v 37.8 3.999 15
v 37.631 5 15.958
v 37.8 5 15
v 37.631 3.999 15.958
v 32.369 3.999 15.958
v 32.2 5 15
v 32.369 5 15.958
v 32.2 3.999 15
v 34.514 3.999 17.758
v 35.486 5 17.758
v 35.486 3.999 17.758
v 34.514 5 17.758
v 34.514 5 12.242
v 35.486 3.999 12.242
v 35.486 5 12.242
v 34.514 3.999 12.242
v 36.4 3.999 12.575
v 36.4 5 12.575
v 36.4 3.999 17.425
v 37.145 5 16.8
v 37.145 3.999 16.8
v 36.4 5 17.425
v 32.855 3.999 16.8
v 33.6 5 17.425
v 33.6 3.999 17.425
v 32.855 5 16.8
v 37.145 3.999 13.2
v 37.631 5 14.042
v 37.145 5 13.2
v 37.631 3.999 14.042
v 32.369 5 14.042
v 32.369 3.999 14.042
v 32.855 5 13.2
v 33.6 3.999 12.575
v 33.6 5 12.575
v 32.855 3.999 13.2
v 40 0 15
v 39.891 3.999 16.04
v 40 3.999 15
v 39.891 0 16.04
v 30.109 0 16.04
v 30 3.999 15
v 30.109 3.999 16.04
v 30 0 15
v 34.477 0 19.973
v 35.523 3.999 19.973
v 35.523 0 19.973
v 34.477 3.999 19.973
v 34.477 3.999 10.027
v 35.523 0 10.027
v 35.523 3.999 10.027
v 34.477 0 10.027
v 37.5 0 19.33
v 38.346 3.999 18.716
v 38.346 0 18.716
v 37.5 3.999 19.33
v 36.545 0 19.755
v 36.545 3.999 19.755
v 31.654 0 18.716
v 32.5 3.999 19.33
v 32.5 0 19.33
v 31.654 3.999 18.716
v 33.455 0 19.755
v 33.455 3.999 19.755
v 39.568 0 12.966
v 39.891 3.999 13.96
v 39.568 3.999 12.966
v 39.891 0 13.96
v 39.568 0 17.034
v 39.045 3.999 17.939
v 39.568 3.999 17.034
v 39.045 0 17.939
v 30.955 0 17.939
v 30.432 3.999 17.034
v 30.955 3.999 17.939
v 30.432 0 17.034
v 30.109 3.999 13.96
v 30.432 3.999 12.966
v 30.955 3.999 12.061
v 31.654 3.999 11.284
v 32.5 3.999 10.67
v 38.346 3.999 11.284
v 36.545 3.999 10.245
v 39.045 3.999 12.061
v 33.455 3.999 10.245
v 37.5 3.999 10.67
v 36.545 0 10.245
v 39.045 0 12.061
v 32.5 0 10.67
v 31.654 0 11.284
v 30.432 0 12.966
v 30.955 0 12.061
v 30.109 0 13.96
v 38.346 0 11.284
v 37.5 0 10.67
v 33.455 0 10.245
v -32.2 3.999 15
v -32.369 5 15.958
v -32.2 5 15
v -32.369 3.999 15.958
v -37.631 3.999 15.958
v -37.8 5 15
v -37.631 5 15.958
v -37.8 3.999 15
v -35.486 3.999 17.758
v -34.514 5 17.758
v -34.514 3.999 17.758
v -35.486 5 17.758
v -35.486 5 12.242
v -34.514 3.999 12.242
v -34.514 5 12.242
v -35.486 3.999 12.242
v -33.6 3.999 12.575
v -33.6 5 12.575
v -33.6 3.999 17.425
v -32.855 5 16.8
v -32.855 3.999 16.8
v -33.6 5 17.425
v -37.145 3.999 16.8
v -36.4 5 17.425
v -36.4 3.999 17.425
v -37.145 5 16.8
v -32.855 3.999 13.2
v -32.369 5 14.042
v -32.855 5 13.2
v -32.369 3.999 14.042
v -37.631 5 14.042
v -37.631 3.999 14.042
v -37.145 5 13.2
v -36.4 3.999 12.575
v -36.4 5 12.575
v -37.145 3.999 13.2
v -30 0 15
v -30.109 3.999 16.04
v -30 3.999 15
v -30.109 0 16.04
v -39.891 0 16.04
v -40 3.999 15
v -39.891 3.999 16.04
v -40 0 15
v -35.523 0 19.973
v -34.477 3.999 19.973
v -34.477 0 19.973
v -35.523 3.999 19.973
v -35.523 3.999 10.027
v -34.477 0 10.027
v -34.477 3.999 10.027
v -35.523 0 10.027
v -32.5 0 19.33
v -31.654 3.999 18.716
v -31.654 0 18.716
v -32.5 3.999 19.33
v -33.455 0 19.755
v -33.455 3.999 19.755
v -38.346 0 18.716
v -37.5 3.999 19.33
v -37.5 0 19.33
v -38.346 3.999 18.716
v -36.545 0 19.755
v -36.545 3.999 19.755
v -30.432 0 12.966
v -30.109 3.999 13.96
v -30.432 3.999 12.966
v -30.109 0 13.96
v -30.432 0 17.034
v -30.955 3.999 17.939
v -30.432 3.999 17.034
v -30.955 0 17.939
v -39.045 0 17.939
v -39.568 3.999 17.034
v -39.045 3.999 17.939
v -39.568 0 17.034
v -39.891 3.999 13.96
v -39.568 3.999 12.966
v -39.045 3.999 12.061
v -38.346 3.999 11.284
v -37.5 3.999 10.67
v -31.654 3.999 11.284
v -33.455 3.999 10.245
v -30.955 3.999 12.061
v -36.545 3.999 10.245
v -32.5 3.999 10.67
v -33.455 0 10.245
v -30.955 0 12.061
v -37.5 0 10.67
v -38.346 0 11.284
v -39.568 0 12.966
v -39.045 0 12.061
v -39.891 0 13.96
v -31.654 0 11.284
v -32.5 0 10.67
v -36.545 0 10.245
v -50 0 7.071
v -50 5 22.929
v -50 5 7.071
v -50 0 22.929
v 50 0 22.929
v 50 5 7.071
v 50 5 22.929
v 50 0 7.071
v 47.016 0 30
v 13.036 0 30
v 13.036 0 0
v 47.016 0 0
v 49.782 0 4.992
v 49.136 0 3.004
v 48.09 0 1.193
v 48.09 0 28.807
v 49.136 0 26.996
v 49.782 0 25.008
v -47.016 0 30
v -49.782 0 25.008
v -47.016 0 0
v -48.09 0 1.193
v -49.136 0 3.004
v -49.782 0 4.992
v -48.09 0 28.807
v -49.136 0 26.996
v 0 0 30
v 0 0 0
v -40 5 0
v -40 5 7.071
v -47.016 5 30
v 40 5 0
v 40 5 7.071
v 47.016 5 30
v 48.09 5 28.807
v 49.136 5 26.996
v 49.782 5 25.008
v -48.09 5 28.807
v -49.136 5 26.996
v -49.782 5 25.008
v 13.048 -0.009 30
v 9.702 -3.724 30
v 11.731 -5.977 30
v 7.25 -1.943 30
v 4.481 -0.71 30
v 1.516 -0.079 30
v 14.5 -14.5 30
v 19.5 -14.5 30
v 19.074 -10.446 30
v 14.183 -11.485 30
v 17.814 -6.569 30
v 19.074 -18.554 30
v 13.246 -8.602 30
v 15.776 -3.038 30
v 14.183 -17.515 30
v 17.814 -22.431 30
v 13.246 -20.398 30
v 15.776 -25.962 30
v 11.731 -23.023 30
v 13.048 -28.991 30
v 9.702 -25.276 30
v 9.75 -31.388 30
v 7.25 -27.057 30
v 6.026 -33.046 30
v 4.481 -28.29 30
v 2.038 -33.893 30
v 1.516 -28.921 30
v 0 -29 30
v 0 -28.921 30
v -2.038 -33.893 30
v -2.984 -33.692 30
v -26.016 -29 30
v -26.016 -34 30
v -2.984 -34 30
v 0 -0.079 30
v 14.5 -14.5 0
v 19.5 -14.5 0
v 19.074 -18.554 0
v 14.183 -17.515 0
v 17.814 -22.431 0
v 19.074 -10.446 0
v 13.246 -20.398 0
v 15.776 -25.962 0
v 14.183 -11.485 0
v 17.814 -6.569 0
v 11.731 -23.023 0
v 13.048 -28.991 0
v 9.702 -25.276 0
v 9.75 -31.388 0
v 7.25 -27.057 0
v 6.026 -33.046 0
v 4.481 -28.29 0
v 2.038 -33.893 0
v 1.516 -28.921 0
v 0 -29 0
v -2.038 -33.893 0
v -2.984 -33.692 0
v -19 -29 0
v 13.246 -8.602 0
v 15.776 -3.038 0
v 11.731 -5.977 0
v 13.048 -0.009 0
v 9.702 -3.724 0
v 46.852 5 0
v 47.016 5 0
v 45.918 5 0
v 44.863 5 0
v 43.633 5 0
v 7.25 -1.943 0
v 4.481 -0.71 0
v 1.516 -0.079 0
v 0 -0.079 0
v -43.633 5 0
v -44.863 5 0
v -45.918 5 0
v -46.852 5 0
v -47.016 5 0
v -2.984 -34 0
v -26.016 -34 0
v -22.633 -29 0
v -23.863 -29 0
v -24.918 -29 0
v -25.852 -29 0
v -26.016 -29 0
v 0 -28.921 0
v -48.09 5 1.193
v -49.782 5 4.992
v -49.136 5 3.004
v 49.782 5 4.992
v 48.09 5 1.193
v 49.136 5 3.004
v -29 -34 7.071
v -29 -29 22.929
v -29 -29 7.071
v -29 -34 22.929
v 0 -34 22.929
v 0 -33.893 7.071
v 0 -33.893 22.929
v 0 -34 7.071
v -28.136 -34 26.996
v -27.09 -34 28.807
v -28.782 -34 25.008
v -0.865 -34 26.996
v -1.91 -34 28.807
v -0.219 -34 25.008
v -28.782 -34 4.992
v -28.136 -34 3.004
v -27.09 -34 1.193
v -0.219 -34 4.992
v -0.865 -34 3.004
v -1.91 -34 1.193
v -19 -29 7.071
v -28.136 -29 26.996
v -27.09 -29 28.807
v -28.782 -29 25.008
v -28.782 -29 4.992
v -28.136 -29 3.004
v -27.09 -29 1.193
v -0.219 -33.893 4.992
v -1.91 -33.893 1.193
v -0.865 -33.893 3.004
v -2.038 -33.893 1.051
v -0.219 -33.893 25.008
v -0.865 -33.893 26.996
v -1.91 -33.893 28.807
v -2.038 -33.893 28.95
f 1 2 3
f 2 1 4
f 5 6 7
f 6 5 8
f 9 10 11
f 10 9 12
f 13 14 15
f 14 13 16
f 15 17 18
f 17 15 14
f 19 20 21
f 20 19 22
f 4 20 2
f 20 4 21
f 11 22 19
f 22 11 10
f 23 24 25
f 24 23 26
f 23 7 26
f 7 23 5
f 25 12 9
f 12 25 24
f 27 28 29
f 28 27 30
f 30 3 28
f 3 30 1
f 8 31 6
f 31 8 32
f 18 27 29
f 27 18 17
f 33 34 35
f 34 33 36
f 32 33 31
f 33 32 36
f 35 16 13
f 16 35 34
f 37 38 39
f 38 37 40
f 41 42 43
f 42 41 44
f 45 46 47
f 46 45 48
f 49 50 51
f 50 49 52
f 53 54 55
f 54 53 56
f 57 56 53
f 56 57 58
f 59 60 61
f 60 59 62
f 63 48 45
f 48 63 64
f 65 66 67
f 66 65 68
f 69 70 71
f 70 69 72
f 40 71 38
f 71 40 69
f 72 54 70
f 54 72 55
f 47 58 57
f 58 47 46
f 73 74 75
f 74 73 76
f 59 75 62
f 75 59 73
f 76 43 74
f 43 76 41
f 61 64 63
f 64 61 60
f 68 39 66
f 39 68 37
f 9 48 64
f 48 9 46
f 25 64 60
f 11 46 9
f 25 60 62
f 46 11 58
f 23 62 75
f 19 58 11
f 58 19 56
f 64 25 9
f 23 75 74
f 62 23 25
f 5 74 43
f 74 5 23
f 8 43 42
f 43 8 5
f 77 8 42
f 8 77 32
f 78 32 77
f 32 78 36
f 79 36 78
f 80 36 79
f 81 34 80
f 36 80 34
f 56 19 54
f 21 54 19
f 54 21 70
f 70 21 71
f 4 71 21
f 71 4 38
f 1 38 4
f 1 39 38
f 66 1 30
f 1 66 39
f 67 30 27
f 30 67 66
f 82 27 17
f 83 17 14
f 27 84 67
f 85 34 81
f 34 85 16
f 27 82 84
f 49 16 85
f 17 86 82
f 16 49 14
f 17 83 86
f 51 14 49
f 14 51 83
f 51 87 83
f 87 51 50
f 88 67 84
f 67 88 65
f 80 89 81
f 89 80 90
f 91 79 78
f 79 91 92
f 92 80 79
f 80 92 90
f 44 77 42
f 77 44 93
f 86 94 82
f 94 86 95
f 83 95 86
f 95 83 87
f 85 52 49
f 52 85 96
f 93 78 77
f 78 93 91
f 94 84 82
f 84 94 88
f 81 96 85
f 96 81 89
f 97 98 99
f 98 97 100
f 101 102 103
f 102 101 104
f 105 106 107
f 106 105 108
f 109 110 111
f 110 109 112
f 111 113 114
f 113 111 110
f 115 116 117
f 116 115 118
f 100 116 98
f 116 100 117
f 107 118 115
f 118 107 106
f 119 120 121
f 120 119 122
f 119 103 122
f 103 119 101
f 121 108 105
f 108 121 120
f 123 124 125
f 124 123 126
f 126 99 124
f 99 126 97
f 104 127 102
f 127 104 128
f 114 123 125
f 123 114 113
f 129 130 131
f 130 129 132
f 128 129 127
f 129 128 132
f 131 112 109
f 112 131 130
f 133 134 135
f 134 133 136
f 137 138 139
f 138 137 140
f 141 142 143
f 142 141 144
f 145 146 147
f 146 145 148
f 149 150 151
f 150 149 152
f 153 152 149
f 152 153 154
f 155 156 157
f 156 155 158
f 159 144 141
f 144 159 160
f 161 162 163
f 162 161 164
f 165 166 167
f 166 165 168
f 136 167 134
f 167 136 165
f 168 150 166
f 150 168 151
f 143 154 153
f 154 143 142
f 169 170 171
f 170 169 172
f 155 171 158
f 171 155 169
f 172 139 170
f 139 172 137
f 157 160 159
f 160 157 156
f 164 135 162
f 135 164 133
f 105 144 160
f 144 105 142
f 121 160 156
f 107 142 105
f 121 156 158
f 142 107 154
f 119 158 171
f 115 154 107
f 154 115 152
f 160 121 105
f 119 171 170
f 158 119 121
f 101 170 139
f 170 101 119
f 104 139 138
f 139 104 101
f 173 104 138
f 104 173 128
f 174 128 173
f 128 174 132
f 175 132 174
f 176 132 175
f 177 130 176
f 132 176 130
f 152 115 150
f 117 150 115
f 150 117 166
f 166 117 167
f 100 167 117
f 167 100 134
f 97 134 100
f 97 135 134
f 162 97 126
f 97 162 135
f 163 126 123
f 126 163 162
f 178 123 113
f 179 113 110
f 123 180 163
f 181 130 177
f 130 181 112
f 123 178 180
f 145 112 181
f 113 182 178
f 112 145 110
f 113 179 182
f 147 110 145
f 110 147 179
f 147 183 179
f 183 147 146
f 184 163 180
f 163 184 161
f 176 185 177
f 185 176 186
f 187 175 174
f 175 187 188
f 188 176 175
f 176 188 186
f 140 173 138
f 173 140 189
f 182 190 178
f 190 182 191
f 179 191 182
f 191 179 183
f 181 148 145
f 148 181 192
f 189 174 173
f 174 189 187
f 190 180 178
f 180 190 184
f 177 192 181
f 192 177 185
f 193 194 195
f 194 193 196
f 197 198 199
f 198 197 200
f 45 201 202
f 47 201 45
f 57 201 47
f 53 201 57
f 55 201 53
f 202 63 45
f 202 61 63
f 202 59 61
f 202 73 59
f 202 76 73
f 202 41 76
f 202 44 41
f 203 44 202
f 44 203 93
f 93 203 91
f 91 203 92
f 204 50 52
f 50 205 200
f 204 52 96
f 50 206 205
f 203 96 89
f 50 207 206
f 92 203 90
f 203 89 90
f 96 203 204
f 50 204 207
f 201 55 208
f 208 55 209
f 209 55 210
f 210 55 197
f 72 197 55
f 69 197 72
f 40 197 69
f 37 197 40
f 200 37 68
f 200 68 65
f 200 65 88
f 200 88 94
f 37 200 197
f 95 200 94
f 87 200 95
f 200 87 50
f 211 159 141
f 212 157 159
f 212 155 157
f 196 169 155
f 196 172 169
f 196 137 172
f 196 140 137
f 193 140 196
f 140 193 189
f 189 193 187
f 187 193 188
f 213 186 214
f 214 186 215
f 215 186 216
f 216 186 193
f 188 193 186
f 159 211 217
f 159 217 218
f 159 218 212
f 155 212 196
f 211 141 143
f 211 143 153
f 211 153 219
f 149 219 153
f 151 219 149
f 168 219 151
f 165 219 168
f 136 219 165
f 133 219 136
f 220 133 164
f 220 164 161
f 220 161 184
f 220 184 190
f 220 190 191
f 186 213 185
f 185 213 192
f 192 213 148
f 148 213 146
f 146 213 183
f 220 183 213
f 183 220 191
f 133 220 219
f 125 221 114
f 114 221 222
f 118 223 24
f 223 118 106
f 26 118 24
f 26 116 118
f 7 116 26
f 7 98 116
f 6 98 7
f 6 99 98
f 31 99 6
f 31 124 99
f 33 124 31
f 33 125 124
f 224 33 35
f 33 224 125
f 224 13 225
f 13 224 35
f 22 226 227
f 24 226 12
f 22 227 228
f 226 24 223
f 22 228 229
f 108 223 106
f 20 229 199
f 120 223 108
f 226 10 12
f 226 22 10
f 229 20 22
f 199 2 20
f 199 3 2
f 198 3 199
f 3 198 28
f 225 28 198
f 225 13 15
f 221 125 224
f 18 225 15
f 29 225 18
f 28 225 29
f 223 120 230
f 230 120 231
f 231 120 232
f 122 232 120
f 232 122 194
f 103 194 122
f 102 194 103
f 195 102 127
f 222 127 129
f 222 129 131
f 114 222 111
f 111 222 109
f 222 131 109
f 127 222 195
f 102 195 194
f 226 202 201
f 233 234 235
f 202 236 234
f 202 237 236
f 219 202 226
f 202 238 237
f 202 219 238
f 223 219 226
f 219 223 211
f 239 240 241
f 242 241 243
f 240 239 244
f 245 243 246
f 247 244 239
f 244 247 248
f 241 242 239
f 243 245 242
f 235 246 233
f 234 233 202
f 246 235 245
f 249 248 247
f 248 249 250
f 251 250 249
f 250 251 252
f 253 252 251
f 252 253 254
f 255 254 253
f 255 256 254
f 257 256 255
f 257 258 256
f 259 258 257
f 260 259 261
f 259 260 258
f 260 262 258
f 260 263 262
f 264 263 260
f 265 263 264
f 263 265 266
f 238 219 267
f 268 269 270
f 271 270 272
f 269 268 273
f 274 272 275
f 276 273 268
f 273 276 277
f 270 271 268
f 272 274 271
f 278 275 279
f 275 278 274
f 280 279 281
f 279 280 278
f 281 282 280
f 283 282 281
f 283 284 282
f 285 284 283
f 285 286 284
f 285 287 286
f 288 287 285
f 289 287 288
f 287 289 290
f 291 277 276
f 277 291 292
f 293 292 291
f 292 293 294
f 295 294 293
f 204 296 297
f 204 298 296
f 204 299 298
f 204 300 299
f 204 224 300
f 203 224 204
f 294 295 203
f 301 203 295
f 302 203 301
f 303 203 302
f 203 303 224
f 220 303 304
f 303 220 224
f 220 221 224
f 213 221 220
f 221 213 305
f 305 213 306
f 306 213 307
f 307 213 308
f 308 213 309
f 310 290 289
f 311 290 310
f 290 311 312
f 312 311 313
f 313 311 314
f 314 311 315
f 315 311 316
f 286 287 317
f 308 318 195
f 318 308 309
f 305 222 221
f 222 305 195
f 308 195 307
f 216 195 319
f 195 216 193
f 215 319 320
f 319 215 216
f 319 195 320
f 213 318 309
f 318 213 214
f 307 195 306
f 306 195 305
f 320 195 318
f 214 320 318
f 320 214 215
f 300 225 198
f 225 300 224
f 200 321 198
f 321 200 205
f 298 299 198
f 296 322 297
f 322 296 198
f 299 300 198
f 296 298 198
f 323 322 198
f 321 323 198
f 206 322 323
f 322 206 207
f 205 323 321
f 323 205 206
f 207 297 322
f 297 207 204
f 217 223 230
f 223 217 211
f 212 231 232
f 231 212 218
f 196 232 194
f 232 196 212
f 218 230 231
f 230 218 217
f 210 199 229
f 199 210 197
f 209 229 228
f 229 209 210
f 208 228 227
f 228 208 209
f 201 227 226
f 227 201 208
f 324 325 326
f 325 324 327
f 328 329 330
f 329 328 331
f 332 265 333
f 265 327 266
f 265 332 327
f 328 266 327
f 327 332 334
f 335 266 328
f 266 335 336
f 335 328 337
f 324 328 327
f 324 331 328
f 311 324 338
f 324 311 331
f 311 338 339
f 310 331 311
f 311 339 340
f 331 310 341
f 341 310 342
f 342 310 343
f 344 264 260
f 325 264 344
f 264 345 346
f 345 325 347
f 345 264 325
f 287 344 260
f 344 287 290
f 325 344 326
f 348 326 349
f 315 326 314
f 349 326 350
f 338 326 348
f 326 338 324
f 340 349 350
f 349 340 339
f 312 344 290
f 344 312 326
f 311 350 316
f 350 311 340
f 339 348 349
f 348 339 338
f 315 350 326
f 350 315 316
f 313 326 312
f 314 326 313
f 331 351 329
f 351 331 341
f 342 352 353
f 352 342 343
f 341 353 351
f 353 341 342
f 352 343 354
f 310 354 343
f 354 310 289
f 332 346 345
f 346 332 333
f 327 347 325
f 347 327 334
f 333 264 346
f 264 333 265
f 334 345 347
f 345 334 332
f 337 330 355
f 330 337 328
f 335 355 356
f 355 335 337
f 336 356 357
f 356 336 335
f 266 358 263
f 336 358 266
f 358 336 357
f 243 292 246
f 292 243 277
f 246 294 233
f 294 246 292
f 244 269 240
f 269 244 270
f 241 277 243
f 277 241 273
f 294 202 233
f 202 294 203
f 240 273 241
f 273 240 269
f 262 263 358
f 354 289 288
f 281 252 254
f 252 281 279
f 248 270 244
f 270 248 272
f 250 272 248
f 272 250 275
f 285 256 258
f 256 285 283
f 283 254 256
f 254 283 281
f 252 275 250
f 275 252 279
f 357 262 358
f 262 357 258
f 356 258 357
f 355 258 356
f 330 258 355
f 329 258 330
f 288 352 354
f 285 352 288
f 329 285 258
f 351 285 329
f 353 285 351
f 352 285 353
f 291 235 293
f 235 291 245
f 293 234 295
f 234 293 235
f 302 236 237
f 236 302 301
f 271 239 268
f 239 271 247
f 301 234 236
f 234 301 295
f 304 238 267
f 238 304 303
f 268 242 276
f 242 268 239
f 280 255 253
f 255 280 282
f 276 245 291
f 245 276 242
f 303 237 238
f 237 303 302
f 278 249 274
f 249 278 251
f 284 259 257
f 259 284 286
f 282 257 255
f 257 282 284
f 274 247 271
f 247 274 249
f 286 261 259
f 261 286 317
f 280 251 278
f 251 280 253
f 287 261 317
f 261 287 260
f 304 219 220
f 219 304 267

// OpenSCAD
DOWEL_R = 28/2 + 0.5;
DEPTH = 30;
HEIGHT = 100;
THICK = 5;

difference() {
    union() {
        translate([0,-(DOWEL_R),0])
            cylinder(r=DOWEL_R + THICK, h=DEPTH);
        
        // Truncated rounded backplate
        translate([-HEIGHT/2,0,0])
            truncated_rounded_cube(size=[HEIGHT, THICK, DEPTH], a=45, r=10);

        // Truncate rounded front plate

        translate([-DOWEL_R*2,-DOWEL_R*2 - THICK,0])
            truncated_rounded_cube(size=[DOWEL_R*2, THICK, DEPTH], a=45, r=10);

    }
    
    // Truncate rounded corners (this prevents unprintable overhangs)
    translate([-100,-100,-10]) cube(size=[200,200,10]);
    translate([-100,-100,DEPTH]) cube(size=[200,200,10]);
    

    // Carve the dowel cavity
    translate([0,-DOWEL_R,-0.005])
        cylinder(r=DOWEL_R, h=DEPTH + 0.01);
    translate([-100,-(DOWEL_R * 2),-0.005])
        cube(size=[100, DOWEL_R * 2, DEPTH + 0.01]);
    
    // Carve the screw holes
    translate([HEIGHT/2-15,0,DEPTH/2]) rotate([90,0,0])
        screw_hole();
    translate([-(HEIGHT/2-15),0,DEPTH/2]) rotate([90,0,0])
        screw_hole();
}

// Screw cutout, centered at the screw opening
module screw_hole() {
    r1=2.8;
    r2=5;
    d1=30;
    d2=4;
    union() {
        translate([0,0,-d1/2])
        cylinder(h=d1, r=r1, center=true, $fs=1);
        translate([0,0,-d2/2+0.001])
            cylinder(h=d2, r=r2, center=true, $fs=1);
    }
}

module truncated_rounded_cube(size, r, a = 45) {
    w = r * sin(a);
    
    translate([0,0,w])
        cube(size=[size[0], size[1], size[2] - 2*w]);
    translate([r,0,0])
        cube(size=[size[0] - 2*r, size[1], size[2]]);
    
    translate([r,size[1],w]) rotate([90,0,0])
        cylinder(r=r, h=size[1]);
    translate([size[0]-r,size[1],w]) rotate([90,0,0])
        cylinder(r=r, h=size[1]);
    translate([r,size[1],size[2]-w]) rotate([90,0,0])
        cylinder(r=r, h=size[1]);
    translate([size[0]-r,size[1],size[2]-w]) rotate([90,0,0])
        cylinder(r=r, h=size[1]);

}
